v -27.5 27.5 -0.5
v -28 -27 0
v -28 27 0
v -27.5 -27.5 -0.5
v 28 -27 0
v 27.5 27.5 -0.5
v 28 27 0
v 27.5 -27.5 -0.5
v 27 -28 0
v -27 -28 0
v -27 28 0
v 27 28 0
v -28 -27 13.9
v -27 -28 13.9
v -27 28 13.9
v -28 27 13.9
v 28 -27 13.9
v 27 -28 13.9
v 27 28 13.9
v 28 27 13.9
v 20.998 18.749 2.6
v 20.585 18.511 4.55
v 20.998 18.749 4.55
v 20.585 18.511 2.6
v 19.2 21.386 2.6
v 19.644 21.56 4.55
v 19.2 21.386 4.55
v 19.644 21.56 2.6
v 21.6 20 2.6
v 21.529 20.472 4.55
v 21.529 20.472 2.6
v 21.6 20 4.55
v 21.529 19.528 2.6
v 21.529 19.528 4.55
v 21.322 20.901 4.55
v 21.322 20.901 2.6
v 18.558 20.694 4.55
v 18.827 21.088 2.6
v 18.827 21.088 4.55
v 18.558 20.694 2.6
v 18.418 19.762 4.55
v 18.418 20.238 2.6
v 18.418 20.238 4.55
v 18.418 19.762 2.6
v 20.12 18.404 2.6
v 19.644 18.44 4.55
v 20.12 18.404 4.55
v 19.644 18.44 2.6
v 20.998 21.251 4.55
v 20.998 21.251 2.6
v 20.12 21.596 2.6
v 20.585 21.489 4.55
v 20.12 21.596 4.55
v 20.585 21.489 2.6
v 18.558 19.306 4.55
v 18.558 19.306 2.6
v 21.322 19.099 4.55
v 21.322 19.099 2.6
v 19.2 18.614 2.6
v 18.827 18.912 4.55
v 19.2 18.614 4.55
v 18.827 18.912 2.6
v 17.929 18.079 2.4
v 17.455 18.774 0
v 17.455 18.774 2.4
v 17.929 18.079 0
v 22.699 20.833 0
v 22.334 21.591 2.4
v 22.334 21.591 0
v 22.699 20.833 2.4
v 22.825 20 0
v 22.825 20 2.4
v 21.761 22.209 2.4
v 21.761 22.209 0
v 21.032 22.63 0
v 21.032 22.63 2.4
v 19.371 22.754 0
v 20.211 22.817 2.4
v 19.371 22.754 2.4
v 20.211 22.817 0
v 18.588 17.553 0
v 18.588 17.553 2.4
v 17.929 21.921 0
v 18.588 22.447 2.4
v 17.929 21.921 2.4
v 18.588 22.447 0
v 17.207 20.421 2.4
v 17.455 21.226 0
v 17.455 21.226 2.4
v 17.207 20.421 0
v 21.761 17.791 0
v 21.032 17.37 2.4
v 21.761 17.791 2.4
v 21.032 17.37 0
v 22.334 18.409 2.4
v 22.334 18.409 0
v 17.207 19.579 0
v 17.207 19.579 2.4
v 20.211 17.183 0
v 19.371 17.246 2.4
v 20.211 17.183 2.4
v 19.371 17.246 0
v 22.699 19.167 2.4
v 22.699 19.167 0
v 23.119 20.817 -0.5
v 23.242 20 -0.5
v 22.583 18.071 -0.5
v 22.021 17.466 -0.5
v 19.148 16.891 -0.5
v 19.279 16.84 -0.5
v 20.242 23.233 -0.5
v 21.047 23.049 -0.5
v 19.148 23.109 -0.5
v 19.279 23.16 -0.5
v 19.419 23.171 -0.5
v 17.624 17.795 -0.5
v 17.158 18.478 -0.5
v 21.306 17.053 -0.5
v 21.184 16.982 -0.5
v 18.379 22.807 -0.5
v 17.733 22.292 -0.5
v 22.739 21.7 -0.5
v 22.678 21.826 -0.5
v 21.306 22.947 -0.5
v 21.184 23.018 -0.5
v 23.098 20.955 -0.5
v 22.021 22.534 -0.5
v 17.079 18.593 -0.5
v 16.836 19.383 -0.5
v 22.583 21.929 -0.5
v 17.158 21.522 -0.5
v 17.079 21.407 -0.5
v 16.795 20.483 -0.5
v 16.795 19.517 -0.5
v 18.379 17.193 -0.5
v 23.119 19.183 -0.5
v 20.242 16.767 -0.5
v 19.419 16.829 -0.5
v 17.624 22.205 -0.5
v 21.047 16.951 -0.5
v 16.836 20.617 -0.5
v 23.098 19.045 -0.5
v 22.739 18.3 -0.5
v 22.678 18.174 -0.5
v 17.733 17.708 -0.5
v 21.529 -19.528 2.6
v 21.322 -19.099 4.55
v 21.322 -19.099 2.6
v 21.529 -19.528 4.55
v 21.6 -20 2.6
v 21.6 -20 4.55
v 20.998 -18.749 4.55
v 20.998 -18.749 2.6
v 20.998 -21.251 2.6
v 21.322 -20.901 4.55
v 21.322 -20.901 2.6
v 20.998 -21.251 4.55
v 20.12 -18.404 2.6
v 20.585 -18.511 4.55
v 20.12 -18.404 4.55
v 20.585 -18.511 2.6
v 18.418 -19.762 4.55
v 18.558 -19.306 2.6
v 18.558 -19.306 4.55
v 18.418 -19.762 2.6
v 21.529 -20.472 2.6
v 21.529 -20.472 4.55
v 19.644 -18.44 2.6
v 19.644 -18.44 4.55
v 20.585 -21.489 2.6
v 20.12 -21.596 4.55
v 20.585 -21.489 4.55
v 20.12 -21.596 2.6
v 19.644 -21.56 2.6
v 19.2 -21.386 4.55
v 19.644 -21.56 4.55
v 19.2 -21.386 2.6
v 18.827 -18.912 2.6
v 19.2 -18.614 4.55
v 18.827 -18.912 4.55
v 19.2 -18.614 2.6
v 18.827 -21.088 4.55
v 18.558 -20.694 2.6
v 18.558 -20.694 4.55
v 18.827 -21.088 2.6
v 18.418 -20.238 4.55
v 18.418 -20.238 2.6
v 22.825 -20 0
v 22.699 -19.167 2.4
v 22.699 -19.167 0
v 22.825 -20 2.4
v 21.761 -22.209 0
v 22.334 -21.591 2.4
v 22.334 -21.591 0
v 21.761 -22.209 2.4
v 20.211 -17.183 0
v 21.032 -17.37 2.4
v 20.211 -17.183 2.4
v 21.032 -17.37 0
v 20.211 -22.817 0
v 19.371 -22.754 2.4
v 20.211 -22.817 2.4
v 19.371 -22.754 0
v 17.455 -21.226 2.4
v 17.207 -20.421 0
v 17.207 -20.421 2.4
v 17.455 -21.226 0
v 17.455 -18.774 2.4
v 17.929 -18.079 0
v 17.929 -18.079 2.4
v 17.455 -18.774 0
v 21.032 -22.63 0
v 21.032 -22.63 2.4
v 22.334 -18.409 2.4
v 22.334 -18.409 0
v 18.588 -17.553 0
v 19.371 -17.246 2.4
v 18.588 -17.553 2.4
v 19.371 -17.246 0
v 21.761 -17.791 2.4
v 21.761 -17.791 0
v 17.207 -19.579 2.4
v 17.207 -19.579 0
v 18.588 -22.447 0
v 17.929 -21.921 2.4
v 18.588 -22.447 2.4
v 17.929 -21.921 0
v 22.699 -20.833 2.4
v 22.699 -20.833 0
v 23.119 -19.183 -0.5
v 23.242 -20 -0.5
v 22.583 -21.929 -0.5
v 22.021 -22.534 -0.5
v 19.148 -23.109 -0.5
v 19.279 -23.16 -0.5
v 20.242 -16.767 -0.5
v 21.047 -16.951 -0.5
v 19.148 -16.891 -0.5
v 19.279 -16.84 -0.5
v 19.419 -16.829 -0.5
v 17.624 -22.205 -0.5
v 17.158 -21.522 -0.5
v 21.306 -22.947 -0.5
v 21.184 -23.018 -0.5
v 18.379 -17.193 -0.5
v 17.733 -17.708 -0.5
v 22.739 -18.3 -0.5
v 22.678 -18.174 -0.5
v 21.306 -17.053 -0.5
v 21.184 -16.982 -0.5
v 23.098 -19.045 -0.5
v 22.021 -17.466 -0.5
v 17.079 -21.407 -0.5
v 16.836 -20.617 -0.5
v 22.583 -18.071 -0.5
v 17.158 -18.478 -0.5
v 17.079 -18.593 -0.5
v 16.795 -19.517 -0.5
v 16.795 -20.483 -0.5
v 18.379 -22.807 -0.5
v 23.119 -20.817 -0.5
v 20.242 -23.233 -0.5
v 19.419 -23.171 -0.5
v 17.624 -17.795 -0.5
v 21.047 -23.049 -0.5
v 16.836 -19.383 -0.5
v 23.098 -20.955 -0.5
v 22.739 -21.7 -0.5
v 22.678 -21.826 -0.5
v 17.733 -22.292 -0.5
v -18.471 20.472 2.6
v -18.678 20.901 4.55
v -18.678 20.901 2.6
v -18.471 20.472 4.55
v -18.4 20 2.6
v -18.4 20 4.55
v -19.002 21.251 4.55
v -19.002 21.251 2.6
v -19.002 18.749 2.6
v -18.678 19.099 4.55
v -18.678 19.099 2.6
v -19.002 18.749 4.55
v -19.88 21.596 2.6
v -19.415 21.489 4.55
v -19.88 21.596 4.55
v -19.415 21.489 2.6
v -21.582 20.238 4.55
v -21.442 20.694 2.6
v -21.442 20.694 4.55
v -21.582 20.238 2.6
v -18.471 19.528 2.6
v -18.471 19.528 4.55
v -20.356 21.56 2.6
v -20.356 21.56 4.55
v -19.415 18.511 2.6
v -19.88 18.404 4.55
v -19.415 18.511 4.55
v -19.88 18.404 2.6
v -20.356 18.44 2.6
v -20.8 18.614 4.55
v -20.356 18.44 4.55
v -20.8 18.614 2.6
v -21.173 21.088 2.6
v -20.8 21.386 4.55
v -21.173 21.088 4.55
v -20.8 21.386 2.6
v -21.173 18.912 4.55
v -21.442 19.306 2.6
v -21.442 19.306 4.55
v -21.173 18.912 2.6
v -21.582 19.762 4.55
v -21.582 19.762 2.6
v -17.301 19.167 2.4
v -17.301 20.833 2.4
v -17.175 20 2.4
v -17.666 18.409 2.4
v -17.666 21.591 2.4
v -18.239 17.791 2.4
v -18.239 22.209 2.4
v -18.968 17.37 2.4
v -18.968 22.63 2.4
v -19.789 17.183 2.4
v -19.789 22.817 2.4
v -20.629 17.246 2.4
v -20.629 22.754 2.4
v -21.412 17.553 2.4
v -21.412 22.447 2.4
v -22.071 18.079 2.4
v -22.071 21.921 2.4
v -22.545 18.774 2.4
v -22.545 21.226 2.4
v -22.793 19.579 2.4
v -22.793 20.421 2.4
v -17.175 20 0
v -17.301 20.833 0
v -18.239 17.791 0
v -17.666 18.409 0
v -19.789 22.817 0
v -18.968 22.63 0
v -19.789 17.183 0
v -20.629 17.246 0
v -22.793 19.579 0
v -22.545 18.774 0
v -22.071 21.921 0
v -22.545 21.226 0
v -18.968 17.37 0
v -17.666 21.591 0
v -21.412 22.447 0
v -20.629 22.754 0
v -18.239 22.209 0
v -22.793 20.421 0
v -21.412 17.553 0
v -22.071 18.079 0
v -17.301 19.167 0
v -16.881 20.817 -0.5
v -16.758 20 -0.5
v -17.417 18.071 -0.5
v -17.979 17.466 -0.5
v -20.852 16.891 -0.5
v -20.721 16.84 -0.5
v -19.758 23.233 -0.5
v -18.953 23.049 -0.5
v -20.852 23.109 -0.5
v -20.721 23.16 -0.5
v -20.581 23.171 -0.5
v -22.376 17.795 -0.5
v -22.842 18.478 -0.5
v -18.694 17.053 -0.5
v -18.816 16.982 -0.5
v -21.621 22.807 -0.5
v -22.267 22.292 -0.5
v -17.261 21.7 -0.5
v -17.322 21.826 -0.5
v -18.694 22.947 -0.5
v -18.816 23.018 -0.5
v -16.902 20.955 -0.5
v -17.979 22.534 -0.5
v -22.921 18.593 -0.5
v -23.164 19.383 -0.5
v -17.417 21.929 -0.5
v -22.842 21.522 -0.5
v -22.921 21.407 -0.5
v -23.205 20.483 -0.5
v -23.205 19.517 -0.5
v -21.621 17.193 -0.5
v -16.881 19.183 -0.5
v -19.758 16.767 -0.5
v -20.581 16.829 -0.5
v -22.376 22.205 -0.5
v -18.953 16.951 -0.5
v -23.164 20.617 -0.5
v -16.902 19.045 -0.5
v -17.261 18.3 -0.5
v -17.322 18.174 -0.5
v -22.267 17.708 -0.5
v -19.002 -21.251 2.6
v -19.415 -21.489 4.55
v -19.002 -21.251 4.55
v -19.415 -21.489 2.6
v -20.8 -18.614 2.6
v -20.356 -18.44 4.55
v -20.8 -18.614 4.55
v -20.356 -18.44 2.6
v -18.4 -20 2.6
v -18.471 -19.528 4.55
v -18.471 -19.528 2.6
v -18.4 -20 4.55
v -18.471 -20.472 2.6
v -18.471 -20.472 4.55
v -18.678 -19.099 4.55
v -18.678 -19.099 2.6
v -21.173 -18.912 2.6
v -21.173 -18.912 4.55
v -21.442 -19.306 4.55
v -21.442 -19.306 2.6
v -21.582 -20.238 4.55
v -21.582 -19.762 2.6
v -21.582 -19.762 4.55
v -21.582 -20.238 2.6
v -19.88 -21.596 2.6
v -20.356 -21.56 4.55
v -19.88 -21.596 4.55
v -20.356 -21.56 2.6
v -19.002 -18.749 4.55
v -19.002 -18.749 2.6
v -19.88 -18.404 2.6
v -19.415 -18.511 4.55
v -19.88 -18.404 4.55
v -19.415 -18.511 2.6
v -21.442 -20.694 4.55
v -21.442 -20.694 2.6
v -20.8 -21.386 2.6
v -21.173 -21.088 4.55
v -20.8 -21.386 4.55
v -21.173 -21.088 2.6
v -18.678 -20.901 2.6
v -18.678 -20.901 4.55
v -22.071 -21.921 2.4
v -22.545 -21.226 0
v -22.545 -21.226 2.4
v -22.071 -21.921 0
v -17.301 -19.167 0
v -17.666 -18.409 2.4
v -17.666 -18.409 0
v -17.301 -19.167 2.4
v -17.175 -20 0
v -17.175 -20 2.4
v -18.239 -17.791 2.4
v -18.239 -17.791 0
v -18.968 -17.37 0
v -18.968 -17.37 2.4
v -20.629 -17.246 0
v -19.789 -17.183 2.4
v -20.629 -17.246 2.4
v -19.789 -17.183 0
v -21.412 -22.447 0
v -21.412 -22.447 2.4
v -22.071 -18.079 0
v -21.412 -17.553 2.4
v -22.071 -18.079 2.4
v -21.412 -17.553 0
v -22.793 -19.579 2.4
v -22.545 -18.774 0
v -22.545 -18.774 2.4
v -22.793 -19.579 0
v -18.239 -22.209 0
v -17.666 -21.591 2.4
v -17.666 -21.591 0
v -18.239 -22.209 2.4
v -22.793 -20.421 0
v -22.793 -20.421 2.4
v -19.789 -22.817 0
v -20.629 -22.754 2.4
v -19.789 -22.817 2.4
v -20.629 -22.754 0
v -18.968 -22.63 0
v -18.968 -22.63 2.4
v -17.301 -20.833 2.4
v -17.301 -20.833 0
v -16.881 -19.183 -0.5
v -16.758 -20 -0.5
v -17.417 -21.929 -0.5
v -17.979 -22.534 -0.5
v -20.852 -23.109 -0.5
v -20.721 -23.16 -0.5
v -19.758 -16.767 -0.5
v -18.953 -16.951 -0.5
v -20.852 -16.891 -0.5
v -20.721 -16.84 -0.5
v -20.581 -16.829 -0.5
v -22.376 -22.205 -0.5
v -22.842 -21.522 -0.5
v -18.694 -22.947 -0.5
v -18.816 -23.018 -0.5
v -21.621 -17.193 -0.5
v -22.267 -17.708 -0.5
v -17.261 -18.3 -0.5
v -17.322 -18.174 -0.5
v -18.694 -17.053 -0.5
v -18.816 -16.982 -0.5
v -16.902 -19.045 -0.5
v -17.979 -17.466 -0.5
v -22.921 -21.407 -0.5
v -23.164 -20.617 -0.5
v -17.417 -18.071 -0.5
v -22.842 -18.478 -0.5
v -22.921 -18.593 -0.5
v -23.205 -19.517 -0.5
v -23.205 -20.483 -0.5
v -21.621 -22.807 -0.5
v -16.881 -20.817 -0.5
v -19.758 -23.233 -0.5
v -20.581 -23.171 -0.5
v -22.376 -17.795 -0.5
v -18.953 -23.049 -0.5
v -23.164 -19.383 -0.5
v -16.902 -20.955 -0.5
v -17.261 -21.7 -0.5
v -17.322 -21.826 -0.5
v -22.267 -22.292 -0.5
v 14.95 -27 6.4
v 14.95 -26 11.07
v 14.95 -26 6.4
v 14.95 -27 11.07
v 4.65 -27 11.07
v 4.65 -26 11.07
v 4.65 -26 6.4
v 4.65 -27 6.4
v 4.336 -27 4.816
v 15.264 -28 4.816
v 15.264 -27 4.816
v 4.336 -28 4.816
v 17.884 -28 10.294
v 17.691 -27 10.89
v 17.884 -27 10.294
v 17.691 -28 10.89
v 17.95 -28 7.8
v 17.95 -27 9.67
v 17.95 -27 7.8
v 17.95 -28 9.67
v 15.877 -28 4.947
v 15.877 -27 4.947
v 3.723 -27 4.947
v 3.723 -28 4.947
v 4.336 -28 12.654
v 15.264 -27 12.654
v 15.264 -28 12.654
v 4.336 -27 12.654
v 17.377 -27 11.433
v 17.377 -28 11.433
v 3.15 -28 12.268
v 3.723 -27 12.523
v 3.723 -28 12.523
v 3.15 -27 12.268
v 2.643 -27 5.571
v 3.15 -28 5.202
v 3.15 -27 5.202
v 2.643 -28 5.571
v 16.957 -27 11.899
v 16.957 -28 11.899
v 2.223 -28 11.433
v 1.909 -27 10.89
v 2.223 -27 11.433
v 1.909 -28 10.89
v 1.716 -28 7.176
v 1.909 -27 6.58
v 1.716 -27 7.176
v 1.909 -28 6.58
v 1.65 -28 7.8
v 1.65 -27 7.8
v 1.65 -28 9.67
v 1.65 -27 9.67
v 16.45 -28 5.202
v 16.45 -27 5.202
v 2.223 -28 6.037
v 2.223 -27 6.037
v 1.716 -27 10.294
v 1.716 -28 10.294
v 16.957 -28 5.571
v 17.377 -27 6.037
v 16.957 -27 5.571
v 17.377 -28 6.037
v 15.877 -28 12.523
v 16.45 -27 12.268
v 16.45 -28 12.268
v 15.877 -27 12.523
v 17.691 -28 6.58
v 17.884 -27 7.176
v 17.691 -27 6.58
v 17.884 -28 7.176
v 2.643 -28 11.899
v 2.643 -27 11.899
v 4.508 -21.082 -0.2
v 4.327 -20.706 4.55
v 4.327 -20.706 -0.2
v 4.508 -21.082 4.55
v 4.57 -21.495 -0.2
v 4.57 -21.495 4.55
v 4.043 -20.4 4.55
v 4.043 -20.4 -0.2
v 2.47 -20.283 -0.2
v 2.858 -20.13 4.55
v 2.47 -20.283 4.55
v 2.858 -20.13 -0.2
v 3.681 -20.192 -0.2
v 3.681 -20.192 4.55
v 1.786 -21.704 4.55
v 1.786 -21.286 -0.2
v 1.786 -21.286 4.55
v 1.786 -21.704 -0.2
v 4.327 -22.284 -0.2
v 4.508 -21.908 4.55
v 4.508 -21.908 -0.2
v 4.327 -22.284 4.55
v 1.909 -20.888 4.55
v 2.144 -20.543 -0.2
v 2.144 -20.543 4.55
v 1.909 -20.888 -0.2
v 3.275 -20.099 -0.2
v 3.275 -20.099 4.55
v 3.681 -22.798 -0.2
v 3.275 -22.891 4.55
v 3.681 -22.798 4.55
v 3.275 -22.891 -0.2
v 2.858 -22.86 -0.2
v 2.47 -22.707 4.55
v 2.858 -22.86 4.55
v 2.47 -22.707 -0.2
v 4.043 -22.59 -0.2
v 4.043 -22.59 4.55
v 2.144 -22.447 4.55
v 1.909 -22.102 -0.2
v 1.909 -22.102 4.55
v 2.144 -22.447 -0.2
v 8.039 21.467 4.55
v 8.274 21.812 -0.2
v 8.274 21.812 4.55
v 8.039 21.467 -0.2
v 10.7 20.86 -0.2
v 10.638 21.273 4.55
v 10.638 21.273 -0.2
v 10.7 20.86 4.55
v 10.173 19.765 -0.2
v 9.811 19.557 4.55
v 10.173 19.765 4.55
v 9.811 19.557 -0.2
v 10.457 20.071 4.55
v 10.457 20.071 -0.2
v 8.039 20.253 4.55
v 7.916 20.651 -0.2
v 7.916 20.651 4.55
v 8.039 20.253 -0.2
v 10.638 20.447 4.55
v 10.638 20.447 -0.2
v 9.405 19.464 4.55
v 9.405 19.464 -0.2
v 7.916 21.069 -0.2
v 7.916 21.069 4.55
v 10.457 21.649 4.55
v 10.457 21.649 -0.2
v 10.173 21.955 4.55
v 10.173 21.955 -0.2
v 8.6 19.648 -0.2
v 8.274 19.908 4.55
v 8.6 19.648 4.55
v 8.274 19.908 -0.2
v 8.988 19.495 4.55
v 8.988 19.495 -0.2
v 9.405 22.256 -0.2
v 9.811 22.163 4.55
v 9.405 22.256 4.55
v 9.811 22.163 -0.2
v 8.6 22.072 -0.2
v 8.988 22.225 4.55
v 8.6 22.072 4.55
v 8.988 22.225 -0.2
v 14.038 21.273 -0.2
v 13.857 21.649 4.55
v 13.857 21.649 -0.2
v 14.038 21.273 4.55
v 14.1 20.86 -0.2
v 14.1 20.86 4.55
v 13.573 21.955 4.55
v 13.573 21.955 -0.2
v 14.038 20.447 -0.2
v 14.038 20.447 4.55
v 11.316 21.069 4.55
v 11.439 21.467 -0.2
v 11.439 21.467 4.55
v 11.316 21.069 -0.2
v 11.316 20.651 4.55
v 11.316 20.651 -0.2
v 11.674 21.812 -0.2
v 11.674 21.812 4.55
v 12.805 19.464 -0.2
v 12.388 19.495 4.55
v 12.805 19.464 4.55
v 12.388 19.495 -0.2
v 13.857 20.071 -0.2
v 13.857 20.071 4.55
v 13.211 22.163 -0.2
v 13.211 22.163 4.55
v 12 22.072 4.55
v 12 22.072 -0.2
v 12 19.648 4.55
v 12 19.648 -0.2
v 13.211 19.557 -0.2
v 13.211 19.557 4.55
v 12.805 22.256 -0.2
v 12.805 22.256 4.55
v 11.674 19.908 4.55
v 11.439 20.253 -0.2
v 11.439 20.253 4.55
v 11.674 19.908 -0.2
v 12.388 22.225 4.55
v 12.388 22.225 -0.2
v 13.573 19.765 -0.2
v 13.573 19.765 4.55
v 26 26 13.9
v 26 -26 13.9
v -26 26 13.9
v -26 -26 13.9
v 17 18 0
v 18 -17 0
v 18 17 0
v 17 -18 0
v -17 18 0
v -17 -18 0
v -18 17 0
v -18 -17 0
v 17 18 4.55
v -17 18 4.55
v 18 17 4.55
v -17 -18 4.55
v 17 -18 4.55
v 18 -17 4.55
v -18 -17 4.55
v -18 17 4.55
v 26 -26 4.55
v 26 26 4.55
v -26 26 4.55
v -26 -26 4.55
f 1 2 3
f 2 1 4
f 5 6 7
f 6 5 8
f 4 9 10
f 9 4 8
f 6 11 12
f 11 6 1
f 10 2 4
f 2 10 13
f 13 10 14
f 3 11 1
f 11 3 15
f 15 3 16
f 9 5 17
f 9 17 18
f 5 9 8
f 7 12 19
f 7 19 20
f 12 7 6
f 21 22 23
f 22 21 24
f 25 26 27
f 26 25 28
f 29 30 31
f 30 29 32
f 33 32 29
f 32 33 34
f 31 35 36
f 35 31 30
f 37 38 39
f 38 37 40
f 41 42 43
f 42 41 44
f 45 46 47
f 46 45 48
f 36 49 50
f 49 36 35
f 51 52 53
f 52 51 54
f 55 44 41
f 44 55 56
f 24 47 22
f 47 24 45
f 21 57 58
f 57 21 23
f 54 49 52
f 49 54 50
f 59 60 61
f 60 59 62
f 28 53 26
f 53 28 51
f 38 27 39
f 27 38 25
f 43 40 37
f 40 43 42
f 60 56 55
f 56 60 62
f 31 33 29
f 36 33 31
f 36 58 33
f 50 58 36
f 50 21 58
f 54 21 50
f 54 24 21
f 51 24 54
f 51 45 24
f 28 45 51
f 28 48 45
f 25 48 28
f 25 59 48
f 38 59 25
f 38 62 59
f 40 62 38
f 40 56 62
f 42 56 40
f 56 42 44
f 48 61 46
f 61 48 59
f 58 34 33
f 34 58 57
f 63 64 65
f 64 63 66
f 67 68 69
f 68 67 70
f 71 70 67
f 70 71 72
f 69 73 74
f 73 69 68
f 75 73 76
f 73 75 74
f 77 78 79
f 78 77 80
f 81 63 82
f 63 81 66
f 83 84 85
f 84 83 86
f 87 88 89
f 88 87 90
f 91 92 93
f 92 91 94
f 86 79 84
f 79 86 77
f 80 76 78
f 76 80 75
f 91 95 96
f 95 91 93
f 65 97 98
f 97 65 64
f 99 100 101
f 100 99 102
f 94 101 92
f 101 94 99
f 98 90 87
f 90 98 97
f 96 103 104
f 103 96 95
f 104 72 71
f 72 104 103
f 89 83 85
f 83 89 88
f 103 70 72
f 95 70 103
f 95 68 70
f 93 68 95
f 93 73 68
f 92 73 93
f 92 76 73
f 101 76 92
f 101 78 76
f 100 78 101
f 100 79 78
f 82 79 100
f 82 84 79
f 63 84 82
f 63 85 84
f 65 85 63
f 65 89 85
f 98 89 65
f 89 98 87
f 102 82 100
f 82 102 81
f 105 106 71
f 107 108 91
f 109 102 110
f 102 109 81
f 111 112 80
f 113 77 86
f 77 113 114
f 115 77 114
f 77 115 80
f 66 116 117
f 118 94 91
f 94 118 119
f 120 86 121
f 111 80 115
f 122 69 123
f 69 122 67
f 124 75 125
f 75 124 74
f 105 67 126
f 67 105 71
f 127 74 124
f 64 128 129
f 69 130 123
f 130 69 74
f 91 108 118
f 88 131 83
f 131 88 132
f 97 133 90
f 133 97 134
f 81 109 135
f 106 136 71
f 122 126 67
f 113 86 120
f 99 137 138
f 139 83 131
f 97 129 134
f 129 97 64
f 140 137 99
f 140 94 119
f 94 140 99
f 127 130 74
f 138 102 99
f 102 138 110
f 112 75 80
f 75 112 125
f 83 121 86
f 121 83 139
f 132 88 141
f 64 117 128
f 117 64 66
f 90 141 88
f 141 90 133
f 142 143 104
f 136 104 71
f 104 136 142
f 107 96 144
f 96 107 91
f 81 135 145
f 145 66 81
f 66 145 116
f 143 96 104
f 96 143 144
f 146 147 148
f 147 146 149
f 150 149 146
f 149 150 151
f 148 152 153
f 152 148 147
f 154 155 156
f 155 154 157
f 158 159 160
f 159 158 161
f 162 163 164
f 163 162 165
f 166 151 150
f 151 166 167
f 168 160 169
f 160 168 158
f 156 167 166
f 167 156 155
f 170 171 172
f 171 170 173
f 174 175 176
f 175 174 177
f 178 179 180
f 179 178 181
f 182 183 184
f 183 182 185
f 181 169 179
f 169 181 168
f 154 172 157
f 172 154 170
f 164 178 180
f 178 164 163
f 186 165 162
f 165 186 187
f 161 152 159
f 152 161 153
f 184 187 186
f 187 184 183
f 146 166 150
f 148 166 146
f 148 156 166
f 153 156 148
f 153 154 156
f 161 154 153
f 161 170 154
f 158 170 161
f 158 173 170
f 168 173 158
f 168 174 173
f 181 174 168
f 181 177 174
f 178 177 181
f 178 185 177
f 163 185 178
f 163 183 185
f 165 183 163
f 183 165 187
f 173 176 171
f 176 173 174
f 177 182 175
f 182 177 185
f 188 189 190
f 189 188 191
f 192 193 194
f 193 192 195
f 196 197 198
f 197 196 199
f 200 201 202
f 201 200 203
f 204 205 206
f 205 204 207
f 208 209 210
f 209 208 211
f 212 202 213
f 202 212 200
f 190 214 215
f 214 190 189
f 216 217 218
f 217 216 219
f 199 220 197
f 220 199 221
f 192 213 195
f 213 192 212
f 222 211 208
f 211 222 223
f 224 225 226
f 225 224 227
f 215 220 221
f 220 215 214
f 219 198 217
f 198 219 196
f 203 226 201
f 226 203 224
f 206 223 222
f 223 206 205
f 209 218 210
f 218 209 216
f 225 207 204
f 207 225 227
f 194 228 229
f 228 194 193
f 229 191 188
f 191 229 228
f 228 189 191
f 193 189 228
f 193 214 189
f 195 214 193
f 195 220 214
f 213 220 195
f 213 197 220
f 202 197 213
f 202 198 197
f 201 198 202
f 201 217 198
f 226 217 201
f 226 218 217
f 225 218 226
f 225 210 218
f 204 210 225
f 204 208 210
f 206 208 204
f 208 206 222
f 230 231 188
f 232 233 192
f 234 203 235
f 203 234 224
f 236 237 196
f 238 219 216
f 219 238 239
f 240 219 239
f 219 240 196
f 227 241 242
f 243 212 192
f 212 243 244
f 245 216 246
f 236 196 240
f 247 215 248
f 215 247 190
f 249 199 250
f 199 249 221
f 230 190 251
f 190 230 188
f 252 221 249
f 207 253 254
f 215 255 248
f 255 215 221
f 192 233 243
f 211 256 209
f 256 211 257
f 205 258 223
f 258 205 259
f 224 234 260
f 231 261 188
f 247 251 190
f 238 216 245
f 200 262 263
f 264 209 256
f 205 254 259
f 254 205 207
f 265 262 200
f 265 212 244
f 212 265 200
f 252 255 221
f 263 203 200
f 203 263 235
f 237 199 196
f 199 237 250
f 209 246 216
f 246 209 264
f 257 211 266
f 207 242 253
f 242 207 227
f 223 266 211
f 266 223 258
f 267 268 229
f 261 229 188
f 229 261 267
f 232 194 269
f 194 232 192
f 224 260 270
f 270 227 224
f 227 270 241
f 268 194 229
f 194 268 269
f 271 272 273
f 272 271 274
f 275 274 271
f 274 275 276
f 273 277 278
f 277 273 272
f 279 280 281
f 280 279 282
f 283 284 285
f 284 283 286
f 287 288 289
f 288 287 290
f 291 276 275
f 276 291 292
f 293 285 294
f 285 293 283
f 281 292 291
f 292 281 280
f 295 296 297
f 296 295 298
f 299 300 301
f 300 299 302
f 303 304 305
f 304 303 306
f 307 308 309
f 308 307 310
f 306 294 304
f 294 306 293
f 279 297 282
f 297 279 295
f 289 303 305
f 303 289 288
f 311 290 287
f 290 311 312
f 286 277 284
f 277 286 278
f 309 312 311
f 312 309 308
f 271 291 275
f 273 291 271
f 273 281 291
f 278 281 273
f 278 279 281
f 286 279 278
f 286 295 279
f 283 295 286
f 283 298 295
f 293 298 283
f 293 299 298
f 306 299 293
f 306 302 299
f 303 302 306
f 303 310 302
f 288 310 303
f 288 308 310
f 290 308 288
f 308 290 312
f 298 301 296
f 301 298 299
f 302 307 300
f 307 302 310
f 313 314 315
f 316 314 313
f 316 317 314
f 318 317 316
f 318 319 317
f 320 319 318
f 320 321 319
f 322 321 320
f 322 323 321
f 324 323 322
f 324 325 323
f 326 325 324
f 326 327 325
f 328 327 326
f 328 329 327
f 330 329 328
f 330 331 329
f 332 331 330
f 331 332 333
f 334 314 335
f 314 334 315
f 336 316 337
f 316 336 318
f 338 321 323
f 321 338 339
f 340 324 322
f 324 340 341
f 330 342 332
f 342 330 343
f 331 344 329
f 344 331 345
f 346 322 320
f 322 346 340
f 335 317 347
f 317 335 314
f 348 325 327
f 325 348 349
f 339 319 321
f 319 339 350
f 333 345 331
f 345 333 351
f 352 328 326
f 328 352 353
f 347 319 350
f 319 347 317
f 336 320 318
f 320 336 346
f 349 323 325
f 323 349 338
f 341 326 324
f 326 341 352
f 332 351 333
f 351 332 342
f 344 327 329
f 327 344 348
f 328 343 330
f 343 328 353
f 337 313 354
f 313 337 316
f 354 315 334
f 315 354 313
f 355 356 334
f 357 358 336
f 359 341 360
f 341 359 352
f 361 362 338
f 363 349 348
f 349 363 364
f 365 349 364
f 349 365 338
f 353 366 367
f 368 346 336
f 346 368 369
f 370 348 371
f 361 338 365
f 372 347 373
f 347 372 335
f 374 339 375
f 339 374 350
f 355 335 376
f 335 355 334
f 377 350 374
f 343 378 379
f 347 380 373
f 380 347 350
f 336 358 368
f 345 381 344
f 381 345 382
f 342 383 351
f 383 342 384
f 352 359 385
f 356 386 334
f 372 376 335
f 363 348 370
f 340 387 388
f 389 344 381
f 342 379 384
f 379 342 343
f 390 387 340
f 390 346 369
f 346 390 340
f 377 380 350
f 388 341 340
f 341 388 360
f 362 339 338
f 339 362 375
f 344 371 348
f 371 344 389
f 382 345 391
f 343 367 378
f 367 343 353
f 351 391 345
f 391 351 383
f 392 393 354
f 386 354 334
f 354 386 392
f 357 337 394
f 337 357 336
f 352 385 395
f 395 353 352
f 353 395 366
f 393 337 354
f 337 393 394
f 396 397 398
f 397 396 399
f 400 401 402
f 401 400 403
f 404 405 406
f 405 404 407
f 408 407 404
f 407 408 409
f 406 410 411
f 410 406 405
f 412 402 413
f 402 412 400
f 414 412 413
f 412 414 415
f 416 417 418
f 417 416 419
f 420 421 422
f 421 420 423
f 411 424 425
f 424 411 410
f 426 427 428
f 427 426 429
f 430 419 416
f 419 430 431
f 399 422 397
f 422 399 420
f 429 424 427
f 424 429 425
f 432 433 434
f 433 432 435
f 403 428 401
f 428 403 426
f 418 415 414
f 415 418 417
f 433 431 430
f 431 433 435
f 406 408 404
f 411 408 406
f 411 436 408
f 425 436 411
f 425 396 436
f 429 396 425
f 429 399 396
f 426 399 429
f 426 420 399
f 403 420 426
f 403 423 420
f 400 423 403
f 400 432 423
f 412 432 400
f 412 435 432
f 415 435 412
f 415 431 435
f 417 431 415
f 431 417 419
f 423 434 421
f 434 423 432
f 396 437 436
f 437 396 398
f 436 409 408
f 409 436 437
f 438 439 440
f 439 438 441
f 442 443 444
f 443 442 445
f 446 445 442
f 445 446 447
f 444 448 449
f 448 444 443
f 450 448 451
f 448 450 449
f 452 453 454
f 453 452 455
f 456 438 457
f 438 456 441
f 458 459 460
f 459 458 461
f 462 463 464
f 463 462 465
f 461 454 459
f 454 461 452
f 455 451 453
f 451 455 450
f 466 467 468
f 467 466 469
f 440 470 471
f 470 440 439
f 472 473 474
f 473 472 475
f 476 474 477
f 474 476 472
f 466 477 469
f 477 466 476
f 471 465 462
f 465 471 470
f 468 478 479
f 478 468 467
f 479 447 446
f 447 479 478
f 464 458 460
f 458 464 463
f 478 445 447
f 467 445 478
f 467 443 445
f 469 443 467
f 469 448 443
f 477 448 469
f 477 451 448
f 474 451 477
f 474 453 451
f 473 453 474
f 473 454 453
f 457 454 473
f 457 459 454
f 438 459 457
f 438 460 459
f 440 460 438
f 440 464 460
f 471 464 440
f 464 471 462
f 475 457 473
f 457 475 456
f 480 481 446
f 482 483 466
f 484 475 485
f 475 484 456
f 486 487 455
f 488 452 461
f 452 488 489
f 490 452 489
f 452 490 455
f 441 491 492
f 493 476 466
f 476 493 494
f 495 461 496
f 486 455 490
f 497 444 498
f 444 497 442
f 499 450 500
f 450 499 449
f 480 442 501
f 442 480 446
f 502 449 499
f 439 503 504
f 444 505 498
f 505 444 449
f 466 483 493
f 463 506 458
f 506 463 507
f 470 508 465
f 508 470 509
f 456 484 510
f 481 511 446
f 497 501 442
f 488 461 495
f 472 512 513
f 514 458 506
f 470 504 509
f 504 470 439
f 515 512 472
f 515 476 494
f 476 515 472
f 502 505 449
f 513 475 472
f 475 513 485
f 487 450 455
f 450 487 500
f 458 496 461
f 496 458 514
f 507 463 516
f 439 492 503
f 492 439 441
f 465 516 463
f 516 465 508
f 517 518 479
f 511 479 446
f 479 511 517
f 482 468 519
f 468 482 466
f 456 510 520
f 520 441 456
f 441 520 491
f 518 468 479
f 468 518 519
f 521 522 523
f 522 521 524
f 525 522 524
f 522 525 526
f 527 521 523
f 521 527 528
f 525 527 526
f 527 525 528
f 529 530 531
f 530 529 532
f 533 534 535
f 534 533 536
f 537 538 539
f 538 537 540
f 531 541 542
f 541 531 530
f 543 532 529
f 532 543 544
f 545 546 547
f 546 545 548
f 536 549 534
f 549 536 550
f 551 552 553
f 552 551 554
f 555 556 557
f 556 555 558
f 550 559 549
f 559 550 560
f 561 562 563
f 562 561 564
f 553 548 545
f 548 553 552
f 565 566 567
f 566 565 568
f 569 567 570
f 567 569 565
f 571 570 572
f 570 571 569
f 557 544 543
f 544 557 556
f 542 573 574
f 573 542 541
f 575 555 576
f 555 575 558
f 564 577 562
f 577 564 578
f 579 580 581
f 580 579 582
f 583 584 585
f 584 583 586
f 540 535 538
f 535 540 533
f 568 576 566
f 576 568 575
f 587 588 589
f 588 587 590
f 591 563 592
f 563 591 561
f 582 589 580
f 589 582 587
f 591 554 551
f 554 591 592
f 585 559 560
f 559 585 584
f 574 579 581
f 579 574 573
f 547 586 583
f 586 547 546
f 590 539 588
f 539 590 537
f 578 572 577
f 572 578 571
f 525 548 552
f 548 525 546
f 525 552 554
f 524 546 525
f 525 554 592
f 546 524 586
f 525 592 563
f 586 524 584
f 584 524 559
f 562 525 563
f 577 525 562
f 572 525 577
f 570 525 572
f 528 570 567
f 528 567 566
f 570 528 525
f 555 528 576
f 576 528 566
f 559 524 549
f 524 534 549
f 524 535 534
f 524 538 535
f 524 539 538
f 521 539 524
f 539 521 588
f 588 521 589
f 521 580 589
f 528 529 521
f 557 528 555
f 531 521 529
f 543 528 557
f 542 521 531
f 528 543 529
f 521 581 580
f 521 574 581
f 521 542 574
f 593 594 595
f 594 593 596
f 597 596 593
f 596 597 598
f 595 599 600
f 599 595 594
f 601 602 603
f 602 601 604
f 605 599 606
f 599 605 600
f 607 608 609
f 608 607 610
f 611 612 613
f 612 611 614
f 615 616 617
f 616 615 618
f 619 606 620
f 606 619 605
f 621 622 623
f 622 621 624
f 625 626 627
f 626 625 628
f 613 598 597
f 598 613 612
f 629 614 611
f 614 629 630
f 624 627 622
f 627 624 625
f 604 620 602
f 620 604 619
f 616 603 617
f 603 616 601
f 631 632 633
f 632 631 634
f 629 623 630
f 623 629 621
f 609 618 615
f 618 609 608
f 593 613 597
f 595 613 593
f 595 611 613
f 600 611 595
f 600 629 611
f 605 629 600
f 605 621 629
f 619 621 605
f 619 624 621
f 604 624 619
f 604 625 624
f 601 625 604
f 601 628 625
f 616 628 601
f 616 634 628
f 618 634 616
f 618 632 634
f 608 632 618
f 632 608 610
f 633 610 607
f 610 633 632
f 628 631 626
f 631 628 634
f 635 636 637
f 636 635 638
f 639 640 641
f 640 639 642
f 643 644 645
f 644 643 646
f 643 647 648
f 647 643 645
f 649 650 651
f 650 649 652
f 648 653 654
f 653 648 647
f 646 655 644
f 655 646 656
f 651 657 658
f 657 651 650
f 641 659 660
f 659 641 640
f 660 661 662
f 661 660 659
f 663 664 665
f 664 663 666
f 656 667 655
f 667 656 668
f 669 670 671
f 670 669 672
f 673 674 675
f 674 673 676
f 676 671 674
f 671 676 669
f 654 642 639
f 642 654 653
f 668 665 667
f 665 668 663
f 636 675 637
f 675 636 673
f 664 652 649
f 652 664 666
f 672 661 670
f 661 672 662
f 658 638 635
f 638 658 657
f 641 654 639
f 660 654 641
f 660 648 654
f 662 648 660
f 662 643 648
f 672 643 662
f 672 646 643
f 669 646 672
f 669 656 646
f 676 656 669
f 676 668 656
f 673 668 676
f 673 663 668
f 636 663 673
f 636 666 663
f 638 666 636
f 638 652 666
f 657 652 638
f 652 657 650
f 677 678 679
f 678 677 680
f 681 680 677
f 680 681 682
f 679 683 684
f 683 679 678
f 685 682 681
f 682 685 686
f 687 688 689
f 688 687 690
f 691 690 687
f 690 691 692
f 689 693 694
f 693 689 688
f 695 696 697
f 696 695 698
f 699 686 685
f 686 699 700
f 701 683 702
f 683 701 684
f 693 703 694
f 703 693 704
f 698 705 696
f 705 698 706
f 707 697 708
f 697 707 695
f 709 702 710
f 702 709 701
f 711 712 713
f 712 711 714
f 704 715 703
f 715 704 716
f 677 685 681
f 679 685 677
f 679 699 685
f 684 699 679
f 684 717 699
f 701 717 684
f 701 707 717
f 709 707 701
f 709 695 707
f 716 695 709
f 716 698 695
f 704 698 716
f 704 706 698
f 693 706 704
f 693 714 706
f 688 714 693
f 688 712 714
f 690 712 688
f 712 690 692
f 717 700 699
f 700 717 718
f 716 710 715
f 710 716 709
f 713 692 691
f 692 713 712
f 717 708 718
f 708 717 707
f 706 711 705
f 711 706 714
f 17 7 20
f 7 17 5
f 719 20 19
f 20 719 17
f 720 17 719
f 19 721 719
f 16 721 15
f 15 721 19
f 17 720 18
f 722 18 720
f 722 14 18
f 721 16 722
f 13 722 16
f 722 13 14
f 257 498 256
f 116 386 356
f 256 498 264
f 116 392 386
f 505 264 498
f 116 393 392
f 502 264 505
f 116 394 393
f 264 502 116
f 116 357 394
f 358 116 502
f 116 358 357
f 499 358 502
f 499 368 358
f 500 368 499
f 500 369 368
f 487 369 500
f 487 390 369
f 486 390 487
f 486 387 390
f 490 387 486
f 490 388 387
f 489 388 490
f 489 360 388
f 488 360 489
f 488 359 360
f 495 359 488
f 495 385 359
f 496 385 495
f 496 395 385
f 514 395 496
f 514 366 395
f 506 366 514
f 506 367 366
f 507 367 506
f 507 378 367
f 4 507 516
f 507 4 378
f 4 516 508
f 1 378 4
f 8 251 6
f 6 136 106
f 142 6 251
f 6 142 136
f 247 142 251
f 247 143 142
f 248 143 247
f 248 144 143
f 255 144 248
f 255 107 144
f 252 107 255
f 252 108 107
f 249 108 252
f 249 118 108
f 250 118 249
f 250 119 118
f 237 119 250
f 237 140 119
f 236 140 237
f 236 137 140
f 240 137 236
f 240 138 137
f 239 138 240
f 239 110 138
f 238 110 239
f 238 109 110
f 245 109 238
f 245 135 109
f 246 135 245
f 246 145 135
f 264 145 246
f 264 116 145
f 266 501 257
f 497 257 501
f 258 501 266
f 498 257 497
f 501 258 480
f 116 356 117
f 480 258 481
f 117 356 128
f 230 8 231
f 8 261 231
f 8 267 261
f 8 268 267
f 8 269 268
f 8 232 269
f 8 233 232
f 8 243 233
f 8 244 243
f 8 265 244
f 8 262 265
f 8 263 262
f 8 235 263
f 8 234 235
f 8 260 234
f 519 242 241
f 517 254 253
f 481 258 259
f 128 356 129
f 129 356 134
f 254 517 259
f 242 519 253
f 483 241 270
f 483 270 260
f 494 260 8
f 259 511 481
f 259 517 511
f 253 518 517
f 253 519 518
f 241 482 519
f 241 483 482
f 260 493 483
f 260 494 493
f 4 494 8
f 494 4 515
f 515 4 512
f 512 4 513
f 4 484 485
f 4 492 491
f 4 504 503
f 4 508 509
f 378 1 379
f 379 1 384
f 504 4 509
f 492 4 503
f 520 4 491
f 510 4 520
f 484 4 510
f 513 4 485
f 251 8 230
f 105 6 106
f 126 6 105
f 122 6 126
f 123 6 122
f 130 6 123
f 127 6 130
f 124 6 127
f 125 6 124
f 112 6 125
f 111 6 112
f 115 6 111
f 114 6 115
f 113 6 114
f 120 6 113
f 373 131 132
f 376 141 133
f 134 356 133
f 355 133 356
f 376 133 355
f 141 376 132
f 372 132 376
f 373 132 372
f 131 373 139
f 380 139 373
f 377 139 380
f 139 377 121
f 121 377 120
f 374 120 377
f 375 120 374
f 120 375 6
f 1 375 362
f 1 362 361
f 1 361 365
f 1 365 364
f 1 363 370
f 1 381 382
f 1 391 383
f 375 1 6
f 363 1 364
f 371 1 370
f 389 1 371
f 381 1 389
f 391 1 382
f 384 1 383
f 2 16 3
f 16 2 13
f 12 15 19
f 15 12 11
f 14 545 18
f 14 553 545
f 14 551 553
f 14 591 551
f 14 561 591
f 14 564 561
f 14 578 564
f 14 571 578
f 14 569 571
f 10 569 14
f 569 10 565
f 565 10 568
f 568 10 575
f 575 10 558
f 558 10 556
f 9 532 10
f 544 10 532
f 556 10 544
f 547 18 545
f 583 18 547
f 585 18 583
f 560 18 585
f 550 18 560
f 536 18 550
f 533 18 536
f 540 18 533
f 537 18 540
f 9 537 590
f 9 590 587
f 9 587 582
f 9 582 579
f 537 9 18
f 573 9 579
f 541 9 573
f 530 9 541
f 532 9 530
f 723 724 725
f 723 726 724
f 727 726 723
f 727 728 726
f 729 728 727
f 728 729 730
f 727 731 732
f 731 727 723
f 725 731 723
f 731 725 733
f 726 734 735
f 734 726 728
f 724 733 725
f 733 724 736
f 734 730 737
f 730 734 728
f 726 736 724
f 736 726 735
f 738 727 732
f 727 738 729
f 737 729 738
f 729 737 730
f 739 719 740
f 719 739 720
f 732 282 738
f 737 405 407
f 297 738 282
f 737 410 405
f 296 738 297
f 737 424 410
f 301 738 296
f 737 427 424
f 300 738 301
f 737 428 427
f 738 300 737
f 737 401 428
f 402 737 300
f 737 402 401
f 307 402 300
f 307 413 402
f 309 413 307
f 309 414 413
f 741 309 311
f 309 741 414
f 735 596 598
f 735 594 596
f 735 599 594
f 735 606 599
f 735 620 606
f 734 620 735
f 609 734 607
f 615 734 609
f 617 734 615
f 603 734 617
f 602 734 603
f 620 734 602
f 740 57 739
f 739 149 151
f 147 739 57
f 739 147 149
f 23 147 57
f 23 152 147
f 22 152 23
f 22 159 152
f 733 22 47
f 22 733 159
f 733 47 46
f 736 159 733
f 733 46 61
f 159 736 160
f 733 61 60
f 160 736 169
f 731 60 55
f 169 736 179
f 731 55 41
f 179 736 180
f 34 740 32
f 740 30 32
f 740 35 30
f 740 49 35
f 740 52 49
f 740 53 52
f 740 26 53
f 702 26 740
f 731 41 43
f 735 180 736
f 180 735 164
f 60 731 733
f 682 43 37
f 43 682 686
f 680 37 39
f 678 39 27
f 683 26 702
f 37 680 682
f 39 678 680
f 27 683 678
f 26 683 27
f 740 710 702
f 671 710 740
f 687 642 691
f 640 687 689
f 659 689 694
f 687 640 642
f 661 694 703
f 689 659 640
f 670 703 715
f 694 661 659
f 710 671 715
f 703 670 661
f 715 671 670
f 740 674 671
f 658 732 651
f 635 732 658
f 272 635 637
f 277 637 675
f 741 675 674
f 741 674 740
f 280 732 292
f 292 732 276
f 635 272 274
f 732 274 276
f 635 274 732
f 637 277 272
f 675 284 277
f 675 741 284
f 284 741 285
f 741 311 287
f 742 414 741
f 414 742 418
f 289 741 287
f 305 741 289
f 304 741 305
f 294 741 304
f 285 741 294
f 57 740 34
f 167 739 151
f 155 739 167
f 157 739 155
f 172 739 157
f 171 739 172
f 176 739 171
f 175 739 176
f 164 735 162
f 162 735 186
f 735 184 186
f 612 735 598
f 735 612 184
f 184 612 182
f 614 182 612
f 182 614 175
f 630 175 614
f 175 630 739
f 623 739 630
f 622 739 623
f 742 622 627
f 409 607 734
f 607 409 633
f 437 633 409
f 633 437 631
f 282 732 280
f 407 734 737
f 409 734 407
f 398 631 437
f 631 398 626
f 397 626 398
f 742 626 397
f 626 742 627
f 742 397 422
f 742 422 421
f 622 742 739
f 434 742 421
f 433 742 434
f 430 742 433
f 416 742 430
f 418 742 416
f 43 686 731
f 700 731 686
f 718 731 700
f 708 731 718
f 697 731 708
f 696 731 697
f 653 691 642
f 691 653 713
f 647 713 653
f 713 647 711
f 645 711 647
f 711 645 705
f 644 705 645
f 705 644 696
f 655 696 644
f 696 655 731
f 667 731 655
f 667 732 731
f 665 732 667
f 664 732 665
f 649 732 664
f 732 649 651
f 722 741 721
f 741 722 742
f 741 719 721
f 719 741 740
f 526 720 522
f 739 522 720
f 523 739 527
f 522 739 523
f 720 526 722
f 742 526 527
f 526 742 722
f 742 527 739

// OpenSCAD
// file: ../bolt_parameters.scad
/// deprecated parameters - should be removed after code upgrade to latest libraries
///

// screw length step - minimum difference in length between two types of screws
basic_screw_length = 5;

//Screw diameter and nut for M6 [mm]
M6_screw_diameter=6.5;
M6_head_diameter = 10+0.5;
M6_head_height = 6;
M6_nut_height = 4.9;
M6_nut_diameter = 11.8;
M6_nut_pocket = 10.4;

//Screw diameter and nut for M5 [mm]
M5_screw_diameter=5.5;
M5_head_height = 5;
M5_head_diameter = 13+0.5;
M5_nut_height = 4.5;
M5_nut_diameter = 9.4;
M5_nut_pocket = 8.4;

//Screw diameter and nut for M4 [mm]
M4_screw_diameter=4.5;
M4_screw_head_height = 4;
M4_nut_height = 3.2;
M4_nut_diameter = 8.4;
M4_nut_pocket = 7.5;

//Screw diameter and nut for M3 [mm]
M3_screw_diameter = 3.2;
M3_nut_height = 2.7;
M3_nut_diameter = 6.6;
M3_screw_head_height = 3;
M3_nut_pocket = 5.6;


//Screw diameter and nut for M2,5 [mm]
M2_5_screw_diameter = 2.7;
M2_5_nut_height = 2.3;
M2_5_nut_diameter = 6;
M2_5_nut_pocket = 5.1;

//Screw diameter and nut for M2 [mm]
M2_screw_diameter = 2.0;
M2_nut_height = 1.8;
M2_nut_diameter = 4.8;
M2_nut_pocket = 3.95;

plast_screw_2_5mm_loose=2.5;
plast_screw_2_5mm_mount=2;
plast_screw_2_5mm_head_diameter=4.6;
plast_screw_2_5mm_head_height=2.5;
// file: ../tfgps01_1001.scad
include <bolt_parameters.scad>

/*
vyska = 20;

difference(){
sphere(r = 10);
#cube(10, center = true);
translate([0, 0, vyska/2]) cube([5, 5, vyska], center = true);
}

*/


connector_i2c = true;
connector_autopilot = true;
switch = true;
Payload = true;
konektor_usb = true;
buzzer = true;

D3 = true;
D4 = true;
D5 = true;
D6 = true;
D7 = true;

wall = 2;

antenna_size = 35+1;
antenna_thickness = 4.6;

antenna_solid_layer = 0.5;
led_solid_layer = 0.3;

pcb_size = 51+1;
pcb_thickness = 7.3;

pacicky_cube = 70;

module gps_krabicka(){

	difference(){
		translate([0, 0, (antenna_thickness+pcb_thickness+wall-antenna_solid_layer)/2])
			cube([pcb_size+2*wall, pcb_size+2*wall, antenna_thickness+pcb_thickness+antenna_solid_layer+wall], center = true);

  // Zkoseni rohu pro lepsi tisk a vzhled
    for(x = [-1, 1]) translate([x/2*(pcb_size+2*wall), 0, -antenna_solid_layer]) rotate([90, 0, 0]) cylinder(d=1, h = 100, $fn=4, center = true);
    for(y = [-1, 1]) translate([0, y/2*(pcb_size+2*wall), -antenna_solid_layer]) rotate([0, 90, 0]) cylinder(d=1, h = 100, $fn=4, center = true);

    for(x = [-1, 1], y = [-1, 1]) translate([x/2*(pcb_size+2*wall), y/2*(pcb_size+2*wall), -antenna_solid_layer]) cylinder(d=2, h = 100, $fn=4, center = true);

		for (x = [1, -1], y=[1, -1])
			translate([20*x, 20*y, -antenna_solid_layer-0.1]){
				translate([0, 0, 3.2]) cylinder(d = M3_screw_diameter, h=antenna_thickness+pcb_thickness+antenna_solid_layer+wall+1+0.1, $fn = 21);
        cylinder(d = 5.65, h=3, $fn = 21);
        cylinder(d1 = 5.65+1, d2=5.65, h=0.6, $fn = 21);

      }

    // Kostka pro antenu
		//%cube([antenna_size, antenna_size, antenna_thickness+10], center = true);
		translate([0, 0, (antenna_thickness)/2])
      minkowski(){
			  cube([antenna_size-sqrt(4), antenna_size-sqrt(4), antenna_thickness], center = true);
        cylinder(d = 2, h=0.1, $fn=4);
      }

		translate([0, 0, (pcb_thickness+wall+1)/2+antenna_thickness])
			cube([pcb_size, pcb_size, pcb_thickness+wall+1+0.1], center = true);

		//pípák
		if(buzzer)
  		translate([-9.5-0.88, (pcb_size+wall)/2, 4.33+antenna_thickness+1.5/2-0.8+0.5])
  			cube([4+0.88, wall+1, 1.5], center = true);

		//otvor konektoru I2C
		if(connector_i2c)
		translate([-(pcb_size+wall)/2, 11.3-0.59, antenna_thickness + 0.7])
			translate([0, 0, 10])
				cube ([wall+1, 8.7+1, 20], center = true);

		//Konektor autopilot
		if(connector_autopilot)
		translate([-(pcb_size+wall)/2, -6.86-0.27, antenna_thickness + 0.7])
			translate([0, 0, 10])
				cube([wall+1, 15.75 + 1, 20], center = true);

		//Tlačítko switch
		if(switch)
		translate([(pcb_size+wall)/2, 8.1+0.42, antenna_thickness + 0.7])
			translate([0, 0, 10])
				cube([wall+1, 10.75+1, 20], center = true);

		//Payload
		if(Payload)
		translate([(pcb_size+wall)/2, -8.1+0.5, antenna_thickness + 0.7])
			translate([0, 0, 10])
				cube([wall+1, 13.22+1, 20], center = true);

		//konektor_usb
		if(konektor_usb)
  		translate([10+1+0.8-2, -(pcb_size+wall)/2, antenna_thickness + 1.5]){
  			translate([0, 0, 5.87/2-0.3])
  				cube([9.3+1, wall+1, 5.87-1.2], center = true);

        translate([0, -(wall+1)/2, 7.87/2-1-0.3])
            minkowski(){
              cube([9.3+1+4-4, wall+1, 7.87-6], center = true);
              rotate([90, 0, 0]) cylinder(d=6, h=1, $fn=30);
            }
      }
		//diody
		translate([0, 0, -antenna_solid_layer]){
			if(D3)
				translate([3.17, -21.495, led_solid_layer])
					cylinder(d = 2.8, h=20, $fn = 21);

			if(D4)
				translate([9.3, 20.86, led_solid_layer])
					cylinder(d = 2.8, h=20, $fn = 21);

			if(D5)
				translate([5.8, 20.86, led_solid_layer])
					cylinder(d = 2.8, h=20, $fn = 21);

			if(D6)
				translate([2.4, 20.86, led_solid_layer])
					cylinder(d = 2.8, h=20, $fn = 21);

			if(D7)
				translate([12.7, 20.86, led_solid_layer])
					cylinder(d = 2.8, h=20, $fn = 21);

		}
	}
}


module gps_pacicky(){
	difference(){
		translate([0, 0, -antenna_solid_layer+(wall+5)/2])
			cube([pacicky_cube, pcb_size+2*wall, wall+5], center = true);

		translate([0, 0, -antenna_solid_layer+(wall+5)/2+wall*1.5])
			cube([pacicky_cube-4, pcb_size+2*wall, wall+8.5], center = true);

			cube([pcb_size+2*wall, pcb_size+2*wall, +100], center = true);

			for(x = [-1, 1])
			translate([0, x*((pcb_size)/2-5), (wall+5)/2])
				rotate([0, 90, 0]){
					cylinder(d = M3_screw_diameter, h = 77, $fn = 21, center = true);
					rotate([0,0,30]) cylinder(d = M3_nut_diameter, h = 70-2, $fn = 6, center = true);
				}
	}
}



module gps_vicko(){
	difference(){
        union(){
            translate([0, 0, 7])
                cube([pcb_size+2*wall, pcb_size+2*wall, wall], center = true);

            translate([0, 0, antenna_thickness/2])
                cube([pcb_size-0.2, pcb_size-0.2, 7.5], center = true);
        }
        cube([pcb_size-20, pcb_size+2, 7.5], center = true);
        cube([pcb_size+2, 35, 7.5-4.5], center = true);

        for(y=[-1, 1])
            translate([0, y*(pcb_size/2+5), 0])
                cube([30, 10, 20], center=true);

		for (x = [1, -1], y=[1, -1])
			translate([20*x, 20*y, 2]){
				cylinder(d = M3_screw_diameter, h=12-2, center = true, $fn = 21);
            }

		for (x = [1, -1], y=[1, -1])
			translate([20*x, 20*y, 2])
                hull(){
                    translate([0, -y*5, 0]) cylinder(d = M3_nut_diameter, h=3, center = true, $fn = 6);
                    cylinder(d = M3_nut_diameter, h=3, center = true, $fn = 6);
                }
	}
}




//gps_pacicky();
//gps_krabicka();
//gps_vicko();
// main file
include<../tfgps01_1001.scad>

connector_i2c = false;
connector_autopilot = false;
switch = false;
Payload = false;
buzzer = false;
konektor_usb = true;

D3 = true;
D4 = true;
D5 = false;
D6 = false;
D7 = true;


gps_krabicka();
